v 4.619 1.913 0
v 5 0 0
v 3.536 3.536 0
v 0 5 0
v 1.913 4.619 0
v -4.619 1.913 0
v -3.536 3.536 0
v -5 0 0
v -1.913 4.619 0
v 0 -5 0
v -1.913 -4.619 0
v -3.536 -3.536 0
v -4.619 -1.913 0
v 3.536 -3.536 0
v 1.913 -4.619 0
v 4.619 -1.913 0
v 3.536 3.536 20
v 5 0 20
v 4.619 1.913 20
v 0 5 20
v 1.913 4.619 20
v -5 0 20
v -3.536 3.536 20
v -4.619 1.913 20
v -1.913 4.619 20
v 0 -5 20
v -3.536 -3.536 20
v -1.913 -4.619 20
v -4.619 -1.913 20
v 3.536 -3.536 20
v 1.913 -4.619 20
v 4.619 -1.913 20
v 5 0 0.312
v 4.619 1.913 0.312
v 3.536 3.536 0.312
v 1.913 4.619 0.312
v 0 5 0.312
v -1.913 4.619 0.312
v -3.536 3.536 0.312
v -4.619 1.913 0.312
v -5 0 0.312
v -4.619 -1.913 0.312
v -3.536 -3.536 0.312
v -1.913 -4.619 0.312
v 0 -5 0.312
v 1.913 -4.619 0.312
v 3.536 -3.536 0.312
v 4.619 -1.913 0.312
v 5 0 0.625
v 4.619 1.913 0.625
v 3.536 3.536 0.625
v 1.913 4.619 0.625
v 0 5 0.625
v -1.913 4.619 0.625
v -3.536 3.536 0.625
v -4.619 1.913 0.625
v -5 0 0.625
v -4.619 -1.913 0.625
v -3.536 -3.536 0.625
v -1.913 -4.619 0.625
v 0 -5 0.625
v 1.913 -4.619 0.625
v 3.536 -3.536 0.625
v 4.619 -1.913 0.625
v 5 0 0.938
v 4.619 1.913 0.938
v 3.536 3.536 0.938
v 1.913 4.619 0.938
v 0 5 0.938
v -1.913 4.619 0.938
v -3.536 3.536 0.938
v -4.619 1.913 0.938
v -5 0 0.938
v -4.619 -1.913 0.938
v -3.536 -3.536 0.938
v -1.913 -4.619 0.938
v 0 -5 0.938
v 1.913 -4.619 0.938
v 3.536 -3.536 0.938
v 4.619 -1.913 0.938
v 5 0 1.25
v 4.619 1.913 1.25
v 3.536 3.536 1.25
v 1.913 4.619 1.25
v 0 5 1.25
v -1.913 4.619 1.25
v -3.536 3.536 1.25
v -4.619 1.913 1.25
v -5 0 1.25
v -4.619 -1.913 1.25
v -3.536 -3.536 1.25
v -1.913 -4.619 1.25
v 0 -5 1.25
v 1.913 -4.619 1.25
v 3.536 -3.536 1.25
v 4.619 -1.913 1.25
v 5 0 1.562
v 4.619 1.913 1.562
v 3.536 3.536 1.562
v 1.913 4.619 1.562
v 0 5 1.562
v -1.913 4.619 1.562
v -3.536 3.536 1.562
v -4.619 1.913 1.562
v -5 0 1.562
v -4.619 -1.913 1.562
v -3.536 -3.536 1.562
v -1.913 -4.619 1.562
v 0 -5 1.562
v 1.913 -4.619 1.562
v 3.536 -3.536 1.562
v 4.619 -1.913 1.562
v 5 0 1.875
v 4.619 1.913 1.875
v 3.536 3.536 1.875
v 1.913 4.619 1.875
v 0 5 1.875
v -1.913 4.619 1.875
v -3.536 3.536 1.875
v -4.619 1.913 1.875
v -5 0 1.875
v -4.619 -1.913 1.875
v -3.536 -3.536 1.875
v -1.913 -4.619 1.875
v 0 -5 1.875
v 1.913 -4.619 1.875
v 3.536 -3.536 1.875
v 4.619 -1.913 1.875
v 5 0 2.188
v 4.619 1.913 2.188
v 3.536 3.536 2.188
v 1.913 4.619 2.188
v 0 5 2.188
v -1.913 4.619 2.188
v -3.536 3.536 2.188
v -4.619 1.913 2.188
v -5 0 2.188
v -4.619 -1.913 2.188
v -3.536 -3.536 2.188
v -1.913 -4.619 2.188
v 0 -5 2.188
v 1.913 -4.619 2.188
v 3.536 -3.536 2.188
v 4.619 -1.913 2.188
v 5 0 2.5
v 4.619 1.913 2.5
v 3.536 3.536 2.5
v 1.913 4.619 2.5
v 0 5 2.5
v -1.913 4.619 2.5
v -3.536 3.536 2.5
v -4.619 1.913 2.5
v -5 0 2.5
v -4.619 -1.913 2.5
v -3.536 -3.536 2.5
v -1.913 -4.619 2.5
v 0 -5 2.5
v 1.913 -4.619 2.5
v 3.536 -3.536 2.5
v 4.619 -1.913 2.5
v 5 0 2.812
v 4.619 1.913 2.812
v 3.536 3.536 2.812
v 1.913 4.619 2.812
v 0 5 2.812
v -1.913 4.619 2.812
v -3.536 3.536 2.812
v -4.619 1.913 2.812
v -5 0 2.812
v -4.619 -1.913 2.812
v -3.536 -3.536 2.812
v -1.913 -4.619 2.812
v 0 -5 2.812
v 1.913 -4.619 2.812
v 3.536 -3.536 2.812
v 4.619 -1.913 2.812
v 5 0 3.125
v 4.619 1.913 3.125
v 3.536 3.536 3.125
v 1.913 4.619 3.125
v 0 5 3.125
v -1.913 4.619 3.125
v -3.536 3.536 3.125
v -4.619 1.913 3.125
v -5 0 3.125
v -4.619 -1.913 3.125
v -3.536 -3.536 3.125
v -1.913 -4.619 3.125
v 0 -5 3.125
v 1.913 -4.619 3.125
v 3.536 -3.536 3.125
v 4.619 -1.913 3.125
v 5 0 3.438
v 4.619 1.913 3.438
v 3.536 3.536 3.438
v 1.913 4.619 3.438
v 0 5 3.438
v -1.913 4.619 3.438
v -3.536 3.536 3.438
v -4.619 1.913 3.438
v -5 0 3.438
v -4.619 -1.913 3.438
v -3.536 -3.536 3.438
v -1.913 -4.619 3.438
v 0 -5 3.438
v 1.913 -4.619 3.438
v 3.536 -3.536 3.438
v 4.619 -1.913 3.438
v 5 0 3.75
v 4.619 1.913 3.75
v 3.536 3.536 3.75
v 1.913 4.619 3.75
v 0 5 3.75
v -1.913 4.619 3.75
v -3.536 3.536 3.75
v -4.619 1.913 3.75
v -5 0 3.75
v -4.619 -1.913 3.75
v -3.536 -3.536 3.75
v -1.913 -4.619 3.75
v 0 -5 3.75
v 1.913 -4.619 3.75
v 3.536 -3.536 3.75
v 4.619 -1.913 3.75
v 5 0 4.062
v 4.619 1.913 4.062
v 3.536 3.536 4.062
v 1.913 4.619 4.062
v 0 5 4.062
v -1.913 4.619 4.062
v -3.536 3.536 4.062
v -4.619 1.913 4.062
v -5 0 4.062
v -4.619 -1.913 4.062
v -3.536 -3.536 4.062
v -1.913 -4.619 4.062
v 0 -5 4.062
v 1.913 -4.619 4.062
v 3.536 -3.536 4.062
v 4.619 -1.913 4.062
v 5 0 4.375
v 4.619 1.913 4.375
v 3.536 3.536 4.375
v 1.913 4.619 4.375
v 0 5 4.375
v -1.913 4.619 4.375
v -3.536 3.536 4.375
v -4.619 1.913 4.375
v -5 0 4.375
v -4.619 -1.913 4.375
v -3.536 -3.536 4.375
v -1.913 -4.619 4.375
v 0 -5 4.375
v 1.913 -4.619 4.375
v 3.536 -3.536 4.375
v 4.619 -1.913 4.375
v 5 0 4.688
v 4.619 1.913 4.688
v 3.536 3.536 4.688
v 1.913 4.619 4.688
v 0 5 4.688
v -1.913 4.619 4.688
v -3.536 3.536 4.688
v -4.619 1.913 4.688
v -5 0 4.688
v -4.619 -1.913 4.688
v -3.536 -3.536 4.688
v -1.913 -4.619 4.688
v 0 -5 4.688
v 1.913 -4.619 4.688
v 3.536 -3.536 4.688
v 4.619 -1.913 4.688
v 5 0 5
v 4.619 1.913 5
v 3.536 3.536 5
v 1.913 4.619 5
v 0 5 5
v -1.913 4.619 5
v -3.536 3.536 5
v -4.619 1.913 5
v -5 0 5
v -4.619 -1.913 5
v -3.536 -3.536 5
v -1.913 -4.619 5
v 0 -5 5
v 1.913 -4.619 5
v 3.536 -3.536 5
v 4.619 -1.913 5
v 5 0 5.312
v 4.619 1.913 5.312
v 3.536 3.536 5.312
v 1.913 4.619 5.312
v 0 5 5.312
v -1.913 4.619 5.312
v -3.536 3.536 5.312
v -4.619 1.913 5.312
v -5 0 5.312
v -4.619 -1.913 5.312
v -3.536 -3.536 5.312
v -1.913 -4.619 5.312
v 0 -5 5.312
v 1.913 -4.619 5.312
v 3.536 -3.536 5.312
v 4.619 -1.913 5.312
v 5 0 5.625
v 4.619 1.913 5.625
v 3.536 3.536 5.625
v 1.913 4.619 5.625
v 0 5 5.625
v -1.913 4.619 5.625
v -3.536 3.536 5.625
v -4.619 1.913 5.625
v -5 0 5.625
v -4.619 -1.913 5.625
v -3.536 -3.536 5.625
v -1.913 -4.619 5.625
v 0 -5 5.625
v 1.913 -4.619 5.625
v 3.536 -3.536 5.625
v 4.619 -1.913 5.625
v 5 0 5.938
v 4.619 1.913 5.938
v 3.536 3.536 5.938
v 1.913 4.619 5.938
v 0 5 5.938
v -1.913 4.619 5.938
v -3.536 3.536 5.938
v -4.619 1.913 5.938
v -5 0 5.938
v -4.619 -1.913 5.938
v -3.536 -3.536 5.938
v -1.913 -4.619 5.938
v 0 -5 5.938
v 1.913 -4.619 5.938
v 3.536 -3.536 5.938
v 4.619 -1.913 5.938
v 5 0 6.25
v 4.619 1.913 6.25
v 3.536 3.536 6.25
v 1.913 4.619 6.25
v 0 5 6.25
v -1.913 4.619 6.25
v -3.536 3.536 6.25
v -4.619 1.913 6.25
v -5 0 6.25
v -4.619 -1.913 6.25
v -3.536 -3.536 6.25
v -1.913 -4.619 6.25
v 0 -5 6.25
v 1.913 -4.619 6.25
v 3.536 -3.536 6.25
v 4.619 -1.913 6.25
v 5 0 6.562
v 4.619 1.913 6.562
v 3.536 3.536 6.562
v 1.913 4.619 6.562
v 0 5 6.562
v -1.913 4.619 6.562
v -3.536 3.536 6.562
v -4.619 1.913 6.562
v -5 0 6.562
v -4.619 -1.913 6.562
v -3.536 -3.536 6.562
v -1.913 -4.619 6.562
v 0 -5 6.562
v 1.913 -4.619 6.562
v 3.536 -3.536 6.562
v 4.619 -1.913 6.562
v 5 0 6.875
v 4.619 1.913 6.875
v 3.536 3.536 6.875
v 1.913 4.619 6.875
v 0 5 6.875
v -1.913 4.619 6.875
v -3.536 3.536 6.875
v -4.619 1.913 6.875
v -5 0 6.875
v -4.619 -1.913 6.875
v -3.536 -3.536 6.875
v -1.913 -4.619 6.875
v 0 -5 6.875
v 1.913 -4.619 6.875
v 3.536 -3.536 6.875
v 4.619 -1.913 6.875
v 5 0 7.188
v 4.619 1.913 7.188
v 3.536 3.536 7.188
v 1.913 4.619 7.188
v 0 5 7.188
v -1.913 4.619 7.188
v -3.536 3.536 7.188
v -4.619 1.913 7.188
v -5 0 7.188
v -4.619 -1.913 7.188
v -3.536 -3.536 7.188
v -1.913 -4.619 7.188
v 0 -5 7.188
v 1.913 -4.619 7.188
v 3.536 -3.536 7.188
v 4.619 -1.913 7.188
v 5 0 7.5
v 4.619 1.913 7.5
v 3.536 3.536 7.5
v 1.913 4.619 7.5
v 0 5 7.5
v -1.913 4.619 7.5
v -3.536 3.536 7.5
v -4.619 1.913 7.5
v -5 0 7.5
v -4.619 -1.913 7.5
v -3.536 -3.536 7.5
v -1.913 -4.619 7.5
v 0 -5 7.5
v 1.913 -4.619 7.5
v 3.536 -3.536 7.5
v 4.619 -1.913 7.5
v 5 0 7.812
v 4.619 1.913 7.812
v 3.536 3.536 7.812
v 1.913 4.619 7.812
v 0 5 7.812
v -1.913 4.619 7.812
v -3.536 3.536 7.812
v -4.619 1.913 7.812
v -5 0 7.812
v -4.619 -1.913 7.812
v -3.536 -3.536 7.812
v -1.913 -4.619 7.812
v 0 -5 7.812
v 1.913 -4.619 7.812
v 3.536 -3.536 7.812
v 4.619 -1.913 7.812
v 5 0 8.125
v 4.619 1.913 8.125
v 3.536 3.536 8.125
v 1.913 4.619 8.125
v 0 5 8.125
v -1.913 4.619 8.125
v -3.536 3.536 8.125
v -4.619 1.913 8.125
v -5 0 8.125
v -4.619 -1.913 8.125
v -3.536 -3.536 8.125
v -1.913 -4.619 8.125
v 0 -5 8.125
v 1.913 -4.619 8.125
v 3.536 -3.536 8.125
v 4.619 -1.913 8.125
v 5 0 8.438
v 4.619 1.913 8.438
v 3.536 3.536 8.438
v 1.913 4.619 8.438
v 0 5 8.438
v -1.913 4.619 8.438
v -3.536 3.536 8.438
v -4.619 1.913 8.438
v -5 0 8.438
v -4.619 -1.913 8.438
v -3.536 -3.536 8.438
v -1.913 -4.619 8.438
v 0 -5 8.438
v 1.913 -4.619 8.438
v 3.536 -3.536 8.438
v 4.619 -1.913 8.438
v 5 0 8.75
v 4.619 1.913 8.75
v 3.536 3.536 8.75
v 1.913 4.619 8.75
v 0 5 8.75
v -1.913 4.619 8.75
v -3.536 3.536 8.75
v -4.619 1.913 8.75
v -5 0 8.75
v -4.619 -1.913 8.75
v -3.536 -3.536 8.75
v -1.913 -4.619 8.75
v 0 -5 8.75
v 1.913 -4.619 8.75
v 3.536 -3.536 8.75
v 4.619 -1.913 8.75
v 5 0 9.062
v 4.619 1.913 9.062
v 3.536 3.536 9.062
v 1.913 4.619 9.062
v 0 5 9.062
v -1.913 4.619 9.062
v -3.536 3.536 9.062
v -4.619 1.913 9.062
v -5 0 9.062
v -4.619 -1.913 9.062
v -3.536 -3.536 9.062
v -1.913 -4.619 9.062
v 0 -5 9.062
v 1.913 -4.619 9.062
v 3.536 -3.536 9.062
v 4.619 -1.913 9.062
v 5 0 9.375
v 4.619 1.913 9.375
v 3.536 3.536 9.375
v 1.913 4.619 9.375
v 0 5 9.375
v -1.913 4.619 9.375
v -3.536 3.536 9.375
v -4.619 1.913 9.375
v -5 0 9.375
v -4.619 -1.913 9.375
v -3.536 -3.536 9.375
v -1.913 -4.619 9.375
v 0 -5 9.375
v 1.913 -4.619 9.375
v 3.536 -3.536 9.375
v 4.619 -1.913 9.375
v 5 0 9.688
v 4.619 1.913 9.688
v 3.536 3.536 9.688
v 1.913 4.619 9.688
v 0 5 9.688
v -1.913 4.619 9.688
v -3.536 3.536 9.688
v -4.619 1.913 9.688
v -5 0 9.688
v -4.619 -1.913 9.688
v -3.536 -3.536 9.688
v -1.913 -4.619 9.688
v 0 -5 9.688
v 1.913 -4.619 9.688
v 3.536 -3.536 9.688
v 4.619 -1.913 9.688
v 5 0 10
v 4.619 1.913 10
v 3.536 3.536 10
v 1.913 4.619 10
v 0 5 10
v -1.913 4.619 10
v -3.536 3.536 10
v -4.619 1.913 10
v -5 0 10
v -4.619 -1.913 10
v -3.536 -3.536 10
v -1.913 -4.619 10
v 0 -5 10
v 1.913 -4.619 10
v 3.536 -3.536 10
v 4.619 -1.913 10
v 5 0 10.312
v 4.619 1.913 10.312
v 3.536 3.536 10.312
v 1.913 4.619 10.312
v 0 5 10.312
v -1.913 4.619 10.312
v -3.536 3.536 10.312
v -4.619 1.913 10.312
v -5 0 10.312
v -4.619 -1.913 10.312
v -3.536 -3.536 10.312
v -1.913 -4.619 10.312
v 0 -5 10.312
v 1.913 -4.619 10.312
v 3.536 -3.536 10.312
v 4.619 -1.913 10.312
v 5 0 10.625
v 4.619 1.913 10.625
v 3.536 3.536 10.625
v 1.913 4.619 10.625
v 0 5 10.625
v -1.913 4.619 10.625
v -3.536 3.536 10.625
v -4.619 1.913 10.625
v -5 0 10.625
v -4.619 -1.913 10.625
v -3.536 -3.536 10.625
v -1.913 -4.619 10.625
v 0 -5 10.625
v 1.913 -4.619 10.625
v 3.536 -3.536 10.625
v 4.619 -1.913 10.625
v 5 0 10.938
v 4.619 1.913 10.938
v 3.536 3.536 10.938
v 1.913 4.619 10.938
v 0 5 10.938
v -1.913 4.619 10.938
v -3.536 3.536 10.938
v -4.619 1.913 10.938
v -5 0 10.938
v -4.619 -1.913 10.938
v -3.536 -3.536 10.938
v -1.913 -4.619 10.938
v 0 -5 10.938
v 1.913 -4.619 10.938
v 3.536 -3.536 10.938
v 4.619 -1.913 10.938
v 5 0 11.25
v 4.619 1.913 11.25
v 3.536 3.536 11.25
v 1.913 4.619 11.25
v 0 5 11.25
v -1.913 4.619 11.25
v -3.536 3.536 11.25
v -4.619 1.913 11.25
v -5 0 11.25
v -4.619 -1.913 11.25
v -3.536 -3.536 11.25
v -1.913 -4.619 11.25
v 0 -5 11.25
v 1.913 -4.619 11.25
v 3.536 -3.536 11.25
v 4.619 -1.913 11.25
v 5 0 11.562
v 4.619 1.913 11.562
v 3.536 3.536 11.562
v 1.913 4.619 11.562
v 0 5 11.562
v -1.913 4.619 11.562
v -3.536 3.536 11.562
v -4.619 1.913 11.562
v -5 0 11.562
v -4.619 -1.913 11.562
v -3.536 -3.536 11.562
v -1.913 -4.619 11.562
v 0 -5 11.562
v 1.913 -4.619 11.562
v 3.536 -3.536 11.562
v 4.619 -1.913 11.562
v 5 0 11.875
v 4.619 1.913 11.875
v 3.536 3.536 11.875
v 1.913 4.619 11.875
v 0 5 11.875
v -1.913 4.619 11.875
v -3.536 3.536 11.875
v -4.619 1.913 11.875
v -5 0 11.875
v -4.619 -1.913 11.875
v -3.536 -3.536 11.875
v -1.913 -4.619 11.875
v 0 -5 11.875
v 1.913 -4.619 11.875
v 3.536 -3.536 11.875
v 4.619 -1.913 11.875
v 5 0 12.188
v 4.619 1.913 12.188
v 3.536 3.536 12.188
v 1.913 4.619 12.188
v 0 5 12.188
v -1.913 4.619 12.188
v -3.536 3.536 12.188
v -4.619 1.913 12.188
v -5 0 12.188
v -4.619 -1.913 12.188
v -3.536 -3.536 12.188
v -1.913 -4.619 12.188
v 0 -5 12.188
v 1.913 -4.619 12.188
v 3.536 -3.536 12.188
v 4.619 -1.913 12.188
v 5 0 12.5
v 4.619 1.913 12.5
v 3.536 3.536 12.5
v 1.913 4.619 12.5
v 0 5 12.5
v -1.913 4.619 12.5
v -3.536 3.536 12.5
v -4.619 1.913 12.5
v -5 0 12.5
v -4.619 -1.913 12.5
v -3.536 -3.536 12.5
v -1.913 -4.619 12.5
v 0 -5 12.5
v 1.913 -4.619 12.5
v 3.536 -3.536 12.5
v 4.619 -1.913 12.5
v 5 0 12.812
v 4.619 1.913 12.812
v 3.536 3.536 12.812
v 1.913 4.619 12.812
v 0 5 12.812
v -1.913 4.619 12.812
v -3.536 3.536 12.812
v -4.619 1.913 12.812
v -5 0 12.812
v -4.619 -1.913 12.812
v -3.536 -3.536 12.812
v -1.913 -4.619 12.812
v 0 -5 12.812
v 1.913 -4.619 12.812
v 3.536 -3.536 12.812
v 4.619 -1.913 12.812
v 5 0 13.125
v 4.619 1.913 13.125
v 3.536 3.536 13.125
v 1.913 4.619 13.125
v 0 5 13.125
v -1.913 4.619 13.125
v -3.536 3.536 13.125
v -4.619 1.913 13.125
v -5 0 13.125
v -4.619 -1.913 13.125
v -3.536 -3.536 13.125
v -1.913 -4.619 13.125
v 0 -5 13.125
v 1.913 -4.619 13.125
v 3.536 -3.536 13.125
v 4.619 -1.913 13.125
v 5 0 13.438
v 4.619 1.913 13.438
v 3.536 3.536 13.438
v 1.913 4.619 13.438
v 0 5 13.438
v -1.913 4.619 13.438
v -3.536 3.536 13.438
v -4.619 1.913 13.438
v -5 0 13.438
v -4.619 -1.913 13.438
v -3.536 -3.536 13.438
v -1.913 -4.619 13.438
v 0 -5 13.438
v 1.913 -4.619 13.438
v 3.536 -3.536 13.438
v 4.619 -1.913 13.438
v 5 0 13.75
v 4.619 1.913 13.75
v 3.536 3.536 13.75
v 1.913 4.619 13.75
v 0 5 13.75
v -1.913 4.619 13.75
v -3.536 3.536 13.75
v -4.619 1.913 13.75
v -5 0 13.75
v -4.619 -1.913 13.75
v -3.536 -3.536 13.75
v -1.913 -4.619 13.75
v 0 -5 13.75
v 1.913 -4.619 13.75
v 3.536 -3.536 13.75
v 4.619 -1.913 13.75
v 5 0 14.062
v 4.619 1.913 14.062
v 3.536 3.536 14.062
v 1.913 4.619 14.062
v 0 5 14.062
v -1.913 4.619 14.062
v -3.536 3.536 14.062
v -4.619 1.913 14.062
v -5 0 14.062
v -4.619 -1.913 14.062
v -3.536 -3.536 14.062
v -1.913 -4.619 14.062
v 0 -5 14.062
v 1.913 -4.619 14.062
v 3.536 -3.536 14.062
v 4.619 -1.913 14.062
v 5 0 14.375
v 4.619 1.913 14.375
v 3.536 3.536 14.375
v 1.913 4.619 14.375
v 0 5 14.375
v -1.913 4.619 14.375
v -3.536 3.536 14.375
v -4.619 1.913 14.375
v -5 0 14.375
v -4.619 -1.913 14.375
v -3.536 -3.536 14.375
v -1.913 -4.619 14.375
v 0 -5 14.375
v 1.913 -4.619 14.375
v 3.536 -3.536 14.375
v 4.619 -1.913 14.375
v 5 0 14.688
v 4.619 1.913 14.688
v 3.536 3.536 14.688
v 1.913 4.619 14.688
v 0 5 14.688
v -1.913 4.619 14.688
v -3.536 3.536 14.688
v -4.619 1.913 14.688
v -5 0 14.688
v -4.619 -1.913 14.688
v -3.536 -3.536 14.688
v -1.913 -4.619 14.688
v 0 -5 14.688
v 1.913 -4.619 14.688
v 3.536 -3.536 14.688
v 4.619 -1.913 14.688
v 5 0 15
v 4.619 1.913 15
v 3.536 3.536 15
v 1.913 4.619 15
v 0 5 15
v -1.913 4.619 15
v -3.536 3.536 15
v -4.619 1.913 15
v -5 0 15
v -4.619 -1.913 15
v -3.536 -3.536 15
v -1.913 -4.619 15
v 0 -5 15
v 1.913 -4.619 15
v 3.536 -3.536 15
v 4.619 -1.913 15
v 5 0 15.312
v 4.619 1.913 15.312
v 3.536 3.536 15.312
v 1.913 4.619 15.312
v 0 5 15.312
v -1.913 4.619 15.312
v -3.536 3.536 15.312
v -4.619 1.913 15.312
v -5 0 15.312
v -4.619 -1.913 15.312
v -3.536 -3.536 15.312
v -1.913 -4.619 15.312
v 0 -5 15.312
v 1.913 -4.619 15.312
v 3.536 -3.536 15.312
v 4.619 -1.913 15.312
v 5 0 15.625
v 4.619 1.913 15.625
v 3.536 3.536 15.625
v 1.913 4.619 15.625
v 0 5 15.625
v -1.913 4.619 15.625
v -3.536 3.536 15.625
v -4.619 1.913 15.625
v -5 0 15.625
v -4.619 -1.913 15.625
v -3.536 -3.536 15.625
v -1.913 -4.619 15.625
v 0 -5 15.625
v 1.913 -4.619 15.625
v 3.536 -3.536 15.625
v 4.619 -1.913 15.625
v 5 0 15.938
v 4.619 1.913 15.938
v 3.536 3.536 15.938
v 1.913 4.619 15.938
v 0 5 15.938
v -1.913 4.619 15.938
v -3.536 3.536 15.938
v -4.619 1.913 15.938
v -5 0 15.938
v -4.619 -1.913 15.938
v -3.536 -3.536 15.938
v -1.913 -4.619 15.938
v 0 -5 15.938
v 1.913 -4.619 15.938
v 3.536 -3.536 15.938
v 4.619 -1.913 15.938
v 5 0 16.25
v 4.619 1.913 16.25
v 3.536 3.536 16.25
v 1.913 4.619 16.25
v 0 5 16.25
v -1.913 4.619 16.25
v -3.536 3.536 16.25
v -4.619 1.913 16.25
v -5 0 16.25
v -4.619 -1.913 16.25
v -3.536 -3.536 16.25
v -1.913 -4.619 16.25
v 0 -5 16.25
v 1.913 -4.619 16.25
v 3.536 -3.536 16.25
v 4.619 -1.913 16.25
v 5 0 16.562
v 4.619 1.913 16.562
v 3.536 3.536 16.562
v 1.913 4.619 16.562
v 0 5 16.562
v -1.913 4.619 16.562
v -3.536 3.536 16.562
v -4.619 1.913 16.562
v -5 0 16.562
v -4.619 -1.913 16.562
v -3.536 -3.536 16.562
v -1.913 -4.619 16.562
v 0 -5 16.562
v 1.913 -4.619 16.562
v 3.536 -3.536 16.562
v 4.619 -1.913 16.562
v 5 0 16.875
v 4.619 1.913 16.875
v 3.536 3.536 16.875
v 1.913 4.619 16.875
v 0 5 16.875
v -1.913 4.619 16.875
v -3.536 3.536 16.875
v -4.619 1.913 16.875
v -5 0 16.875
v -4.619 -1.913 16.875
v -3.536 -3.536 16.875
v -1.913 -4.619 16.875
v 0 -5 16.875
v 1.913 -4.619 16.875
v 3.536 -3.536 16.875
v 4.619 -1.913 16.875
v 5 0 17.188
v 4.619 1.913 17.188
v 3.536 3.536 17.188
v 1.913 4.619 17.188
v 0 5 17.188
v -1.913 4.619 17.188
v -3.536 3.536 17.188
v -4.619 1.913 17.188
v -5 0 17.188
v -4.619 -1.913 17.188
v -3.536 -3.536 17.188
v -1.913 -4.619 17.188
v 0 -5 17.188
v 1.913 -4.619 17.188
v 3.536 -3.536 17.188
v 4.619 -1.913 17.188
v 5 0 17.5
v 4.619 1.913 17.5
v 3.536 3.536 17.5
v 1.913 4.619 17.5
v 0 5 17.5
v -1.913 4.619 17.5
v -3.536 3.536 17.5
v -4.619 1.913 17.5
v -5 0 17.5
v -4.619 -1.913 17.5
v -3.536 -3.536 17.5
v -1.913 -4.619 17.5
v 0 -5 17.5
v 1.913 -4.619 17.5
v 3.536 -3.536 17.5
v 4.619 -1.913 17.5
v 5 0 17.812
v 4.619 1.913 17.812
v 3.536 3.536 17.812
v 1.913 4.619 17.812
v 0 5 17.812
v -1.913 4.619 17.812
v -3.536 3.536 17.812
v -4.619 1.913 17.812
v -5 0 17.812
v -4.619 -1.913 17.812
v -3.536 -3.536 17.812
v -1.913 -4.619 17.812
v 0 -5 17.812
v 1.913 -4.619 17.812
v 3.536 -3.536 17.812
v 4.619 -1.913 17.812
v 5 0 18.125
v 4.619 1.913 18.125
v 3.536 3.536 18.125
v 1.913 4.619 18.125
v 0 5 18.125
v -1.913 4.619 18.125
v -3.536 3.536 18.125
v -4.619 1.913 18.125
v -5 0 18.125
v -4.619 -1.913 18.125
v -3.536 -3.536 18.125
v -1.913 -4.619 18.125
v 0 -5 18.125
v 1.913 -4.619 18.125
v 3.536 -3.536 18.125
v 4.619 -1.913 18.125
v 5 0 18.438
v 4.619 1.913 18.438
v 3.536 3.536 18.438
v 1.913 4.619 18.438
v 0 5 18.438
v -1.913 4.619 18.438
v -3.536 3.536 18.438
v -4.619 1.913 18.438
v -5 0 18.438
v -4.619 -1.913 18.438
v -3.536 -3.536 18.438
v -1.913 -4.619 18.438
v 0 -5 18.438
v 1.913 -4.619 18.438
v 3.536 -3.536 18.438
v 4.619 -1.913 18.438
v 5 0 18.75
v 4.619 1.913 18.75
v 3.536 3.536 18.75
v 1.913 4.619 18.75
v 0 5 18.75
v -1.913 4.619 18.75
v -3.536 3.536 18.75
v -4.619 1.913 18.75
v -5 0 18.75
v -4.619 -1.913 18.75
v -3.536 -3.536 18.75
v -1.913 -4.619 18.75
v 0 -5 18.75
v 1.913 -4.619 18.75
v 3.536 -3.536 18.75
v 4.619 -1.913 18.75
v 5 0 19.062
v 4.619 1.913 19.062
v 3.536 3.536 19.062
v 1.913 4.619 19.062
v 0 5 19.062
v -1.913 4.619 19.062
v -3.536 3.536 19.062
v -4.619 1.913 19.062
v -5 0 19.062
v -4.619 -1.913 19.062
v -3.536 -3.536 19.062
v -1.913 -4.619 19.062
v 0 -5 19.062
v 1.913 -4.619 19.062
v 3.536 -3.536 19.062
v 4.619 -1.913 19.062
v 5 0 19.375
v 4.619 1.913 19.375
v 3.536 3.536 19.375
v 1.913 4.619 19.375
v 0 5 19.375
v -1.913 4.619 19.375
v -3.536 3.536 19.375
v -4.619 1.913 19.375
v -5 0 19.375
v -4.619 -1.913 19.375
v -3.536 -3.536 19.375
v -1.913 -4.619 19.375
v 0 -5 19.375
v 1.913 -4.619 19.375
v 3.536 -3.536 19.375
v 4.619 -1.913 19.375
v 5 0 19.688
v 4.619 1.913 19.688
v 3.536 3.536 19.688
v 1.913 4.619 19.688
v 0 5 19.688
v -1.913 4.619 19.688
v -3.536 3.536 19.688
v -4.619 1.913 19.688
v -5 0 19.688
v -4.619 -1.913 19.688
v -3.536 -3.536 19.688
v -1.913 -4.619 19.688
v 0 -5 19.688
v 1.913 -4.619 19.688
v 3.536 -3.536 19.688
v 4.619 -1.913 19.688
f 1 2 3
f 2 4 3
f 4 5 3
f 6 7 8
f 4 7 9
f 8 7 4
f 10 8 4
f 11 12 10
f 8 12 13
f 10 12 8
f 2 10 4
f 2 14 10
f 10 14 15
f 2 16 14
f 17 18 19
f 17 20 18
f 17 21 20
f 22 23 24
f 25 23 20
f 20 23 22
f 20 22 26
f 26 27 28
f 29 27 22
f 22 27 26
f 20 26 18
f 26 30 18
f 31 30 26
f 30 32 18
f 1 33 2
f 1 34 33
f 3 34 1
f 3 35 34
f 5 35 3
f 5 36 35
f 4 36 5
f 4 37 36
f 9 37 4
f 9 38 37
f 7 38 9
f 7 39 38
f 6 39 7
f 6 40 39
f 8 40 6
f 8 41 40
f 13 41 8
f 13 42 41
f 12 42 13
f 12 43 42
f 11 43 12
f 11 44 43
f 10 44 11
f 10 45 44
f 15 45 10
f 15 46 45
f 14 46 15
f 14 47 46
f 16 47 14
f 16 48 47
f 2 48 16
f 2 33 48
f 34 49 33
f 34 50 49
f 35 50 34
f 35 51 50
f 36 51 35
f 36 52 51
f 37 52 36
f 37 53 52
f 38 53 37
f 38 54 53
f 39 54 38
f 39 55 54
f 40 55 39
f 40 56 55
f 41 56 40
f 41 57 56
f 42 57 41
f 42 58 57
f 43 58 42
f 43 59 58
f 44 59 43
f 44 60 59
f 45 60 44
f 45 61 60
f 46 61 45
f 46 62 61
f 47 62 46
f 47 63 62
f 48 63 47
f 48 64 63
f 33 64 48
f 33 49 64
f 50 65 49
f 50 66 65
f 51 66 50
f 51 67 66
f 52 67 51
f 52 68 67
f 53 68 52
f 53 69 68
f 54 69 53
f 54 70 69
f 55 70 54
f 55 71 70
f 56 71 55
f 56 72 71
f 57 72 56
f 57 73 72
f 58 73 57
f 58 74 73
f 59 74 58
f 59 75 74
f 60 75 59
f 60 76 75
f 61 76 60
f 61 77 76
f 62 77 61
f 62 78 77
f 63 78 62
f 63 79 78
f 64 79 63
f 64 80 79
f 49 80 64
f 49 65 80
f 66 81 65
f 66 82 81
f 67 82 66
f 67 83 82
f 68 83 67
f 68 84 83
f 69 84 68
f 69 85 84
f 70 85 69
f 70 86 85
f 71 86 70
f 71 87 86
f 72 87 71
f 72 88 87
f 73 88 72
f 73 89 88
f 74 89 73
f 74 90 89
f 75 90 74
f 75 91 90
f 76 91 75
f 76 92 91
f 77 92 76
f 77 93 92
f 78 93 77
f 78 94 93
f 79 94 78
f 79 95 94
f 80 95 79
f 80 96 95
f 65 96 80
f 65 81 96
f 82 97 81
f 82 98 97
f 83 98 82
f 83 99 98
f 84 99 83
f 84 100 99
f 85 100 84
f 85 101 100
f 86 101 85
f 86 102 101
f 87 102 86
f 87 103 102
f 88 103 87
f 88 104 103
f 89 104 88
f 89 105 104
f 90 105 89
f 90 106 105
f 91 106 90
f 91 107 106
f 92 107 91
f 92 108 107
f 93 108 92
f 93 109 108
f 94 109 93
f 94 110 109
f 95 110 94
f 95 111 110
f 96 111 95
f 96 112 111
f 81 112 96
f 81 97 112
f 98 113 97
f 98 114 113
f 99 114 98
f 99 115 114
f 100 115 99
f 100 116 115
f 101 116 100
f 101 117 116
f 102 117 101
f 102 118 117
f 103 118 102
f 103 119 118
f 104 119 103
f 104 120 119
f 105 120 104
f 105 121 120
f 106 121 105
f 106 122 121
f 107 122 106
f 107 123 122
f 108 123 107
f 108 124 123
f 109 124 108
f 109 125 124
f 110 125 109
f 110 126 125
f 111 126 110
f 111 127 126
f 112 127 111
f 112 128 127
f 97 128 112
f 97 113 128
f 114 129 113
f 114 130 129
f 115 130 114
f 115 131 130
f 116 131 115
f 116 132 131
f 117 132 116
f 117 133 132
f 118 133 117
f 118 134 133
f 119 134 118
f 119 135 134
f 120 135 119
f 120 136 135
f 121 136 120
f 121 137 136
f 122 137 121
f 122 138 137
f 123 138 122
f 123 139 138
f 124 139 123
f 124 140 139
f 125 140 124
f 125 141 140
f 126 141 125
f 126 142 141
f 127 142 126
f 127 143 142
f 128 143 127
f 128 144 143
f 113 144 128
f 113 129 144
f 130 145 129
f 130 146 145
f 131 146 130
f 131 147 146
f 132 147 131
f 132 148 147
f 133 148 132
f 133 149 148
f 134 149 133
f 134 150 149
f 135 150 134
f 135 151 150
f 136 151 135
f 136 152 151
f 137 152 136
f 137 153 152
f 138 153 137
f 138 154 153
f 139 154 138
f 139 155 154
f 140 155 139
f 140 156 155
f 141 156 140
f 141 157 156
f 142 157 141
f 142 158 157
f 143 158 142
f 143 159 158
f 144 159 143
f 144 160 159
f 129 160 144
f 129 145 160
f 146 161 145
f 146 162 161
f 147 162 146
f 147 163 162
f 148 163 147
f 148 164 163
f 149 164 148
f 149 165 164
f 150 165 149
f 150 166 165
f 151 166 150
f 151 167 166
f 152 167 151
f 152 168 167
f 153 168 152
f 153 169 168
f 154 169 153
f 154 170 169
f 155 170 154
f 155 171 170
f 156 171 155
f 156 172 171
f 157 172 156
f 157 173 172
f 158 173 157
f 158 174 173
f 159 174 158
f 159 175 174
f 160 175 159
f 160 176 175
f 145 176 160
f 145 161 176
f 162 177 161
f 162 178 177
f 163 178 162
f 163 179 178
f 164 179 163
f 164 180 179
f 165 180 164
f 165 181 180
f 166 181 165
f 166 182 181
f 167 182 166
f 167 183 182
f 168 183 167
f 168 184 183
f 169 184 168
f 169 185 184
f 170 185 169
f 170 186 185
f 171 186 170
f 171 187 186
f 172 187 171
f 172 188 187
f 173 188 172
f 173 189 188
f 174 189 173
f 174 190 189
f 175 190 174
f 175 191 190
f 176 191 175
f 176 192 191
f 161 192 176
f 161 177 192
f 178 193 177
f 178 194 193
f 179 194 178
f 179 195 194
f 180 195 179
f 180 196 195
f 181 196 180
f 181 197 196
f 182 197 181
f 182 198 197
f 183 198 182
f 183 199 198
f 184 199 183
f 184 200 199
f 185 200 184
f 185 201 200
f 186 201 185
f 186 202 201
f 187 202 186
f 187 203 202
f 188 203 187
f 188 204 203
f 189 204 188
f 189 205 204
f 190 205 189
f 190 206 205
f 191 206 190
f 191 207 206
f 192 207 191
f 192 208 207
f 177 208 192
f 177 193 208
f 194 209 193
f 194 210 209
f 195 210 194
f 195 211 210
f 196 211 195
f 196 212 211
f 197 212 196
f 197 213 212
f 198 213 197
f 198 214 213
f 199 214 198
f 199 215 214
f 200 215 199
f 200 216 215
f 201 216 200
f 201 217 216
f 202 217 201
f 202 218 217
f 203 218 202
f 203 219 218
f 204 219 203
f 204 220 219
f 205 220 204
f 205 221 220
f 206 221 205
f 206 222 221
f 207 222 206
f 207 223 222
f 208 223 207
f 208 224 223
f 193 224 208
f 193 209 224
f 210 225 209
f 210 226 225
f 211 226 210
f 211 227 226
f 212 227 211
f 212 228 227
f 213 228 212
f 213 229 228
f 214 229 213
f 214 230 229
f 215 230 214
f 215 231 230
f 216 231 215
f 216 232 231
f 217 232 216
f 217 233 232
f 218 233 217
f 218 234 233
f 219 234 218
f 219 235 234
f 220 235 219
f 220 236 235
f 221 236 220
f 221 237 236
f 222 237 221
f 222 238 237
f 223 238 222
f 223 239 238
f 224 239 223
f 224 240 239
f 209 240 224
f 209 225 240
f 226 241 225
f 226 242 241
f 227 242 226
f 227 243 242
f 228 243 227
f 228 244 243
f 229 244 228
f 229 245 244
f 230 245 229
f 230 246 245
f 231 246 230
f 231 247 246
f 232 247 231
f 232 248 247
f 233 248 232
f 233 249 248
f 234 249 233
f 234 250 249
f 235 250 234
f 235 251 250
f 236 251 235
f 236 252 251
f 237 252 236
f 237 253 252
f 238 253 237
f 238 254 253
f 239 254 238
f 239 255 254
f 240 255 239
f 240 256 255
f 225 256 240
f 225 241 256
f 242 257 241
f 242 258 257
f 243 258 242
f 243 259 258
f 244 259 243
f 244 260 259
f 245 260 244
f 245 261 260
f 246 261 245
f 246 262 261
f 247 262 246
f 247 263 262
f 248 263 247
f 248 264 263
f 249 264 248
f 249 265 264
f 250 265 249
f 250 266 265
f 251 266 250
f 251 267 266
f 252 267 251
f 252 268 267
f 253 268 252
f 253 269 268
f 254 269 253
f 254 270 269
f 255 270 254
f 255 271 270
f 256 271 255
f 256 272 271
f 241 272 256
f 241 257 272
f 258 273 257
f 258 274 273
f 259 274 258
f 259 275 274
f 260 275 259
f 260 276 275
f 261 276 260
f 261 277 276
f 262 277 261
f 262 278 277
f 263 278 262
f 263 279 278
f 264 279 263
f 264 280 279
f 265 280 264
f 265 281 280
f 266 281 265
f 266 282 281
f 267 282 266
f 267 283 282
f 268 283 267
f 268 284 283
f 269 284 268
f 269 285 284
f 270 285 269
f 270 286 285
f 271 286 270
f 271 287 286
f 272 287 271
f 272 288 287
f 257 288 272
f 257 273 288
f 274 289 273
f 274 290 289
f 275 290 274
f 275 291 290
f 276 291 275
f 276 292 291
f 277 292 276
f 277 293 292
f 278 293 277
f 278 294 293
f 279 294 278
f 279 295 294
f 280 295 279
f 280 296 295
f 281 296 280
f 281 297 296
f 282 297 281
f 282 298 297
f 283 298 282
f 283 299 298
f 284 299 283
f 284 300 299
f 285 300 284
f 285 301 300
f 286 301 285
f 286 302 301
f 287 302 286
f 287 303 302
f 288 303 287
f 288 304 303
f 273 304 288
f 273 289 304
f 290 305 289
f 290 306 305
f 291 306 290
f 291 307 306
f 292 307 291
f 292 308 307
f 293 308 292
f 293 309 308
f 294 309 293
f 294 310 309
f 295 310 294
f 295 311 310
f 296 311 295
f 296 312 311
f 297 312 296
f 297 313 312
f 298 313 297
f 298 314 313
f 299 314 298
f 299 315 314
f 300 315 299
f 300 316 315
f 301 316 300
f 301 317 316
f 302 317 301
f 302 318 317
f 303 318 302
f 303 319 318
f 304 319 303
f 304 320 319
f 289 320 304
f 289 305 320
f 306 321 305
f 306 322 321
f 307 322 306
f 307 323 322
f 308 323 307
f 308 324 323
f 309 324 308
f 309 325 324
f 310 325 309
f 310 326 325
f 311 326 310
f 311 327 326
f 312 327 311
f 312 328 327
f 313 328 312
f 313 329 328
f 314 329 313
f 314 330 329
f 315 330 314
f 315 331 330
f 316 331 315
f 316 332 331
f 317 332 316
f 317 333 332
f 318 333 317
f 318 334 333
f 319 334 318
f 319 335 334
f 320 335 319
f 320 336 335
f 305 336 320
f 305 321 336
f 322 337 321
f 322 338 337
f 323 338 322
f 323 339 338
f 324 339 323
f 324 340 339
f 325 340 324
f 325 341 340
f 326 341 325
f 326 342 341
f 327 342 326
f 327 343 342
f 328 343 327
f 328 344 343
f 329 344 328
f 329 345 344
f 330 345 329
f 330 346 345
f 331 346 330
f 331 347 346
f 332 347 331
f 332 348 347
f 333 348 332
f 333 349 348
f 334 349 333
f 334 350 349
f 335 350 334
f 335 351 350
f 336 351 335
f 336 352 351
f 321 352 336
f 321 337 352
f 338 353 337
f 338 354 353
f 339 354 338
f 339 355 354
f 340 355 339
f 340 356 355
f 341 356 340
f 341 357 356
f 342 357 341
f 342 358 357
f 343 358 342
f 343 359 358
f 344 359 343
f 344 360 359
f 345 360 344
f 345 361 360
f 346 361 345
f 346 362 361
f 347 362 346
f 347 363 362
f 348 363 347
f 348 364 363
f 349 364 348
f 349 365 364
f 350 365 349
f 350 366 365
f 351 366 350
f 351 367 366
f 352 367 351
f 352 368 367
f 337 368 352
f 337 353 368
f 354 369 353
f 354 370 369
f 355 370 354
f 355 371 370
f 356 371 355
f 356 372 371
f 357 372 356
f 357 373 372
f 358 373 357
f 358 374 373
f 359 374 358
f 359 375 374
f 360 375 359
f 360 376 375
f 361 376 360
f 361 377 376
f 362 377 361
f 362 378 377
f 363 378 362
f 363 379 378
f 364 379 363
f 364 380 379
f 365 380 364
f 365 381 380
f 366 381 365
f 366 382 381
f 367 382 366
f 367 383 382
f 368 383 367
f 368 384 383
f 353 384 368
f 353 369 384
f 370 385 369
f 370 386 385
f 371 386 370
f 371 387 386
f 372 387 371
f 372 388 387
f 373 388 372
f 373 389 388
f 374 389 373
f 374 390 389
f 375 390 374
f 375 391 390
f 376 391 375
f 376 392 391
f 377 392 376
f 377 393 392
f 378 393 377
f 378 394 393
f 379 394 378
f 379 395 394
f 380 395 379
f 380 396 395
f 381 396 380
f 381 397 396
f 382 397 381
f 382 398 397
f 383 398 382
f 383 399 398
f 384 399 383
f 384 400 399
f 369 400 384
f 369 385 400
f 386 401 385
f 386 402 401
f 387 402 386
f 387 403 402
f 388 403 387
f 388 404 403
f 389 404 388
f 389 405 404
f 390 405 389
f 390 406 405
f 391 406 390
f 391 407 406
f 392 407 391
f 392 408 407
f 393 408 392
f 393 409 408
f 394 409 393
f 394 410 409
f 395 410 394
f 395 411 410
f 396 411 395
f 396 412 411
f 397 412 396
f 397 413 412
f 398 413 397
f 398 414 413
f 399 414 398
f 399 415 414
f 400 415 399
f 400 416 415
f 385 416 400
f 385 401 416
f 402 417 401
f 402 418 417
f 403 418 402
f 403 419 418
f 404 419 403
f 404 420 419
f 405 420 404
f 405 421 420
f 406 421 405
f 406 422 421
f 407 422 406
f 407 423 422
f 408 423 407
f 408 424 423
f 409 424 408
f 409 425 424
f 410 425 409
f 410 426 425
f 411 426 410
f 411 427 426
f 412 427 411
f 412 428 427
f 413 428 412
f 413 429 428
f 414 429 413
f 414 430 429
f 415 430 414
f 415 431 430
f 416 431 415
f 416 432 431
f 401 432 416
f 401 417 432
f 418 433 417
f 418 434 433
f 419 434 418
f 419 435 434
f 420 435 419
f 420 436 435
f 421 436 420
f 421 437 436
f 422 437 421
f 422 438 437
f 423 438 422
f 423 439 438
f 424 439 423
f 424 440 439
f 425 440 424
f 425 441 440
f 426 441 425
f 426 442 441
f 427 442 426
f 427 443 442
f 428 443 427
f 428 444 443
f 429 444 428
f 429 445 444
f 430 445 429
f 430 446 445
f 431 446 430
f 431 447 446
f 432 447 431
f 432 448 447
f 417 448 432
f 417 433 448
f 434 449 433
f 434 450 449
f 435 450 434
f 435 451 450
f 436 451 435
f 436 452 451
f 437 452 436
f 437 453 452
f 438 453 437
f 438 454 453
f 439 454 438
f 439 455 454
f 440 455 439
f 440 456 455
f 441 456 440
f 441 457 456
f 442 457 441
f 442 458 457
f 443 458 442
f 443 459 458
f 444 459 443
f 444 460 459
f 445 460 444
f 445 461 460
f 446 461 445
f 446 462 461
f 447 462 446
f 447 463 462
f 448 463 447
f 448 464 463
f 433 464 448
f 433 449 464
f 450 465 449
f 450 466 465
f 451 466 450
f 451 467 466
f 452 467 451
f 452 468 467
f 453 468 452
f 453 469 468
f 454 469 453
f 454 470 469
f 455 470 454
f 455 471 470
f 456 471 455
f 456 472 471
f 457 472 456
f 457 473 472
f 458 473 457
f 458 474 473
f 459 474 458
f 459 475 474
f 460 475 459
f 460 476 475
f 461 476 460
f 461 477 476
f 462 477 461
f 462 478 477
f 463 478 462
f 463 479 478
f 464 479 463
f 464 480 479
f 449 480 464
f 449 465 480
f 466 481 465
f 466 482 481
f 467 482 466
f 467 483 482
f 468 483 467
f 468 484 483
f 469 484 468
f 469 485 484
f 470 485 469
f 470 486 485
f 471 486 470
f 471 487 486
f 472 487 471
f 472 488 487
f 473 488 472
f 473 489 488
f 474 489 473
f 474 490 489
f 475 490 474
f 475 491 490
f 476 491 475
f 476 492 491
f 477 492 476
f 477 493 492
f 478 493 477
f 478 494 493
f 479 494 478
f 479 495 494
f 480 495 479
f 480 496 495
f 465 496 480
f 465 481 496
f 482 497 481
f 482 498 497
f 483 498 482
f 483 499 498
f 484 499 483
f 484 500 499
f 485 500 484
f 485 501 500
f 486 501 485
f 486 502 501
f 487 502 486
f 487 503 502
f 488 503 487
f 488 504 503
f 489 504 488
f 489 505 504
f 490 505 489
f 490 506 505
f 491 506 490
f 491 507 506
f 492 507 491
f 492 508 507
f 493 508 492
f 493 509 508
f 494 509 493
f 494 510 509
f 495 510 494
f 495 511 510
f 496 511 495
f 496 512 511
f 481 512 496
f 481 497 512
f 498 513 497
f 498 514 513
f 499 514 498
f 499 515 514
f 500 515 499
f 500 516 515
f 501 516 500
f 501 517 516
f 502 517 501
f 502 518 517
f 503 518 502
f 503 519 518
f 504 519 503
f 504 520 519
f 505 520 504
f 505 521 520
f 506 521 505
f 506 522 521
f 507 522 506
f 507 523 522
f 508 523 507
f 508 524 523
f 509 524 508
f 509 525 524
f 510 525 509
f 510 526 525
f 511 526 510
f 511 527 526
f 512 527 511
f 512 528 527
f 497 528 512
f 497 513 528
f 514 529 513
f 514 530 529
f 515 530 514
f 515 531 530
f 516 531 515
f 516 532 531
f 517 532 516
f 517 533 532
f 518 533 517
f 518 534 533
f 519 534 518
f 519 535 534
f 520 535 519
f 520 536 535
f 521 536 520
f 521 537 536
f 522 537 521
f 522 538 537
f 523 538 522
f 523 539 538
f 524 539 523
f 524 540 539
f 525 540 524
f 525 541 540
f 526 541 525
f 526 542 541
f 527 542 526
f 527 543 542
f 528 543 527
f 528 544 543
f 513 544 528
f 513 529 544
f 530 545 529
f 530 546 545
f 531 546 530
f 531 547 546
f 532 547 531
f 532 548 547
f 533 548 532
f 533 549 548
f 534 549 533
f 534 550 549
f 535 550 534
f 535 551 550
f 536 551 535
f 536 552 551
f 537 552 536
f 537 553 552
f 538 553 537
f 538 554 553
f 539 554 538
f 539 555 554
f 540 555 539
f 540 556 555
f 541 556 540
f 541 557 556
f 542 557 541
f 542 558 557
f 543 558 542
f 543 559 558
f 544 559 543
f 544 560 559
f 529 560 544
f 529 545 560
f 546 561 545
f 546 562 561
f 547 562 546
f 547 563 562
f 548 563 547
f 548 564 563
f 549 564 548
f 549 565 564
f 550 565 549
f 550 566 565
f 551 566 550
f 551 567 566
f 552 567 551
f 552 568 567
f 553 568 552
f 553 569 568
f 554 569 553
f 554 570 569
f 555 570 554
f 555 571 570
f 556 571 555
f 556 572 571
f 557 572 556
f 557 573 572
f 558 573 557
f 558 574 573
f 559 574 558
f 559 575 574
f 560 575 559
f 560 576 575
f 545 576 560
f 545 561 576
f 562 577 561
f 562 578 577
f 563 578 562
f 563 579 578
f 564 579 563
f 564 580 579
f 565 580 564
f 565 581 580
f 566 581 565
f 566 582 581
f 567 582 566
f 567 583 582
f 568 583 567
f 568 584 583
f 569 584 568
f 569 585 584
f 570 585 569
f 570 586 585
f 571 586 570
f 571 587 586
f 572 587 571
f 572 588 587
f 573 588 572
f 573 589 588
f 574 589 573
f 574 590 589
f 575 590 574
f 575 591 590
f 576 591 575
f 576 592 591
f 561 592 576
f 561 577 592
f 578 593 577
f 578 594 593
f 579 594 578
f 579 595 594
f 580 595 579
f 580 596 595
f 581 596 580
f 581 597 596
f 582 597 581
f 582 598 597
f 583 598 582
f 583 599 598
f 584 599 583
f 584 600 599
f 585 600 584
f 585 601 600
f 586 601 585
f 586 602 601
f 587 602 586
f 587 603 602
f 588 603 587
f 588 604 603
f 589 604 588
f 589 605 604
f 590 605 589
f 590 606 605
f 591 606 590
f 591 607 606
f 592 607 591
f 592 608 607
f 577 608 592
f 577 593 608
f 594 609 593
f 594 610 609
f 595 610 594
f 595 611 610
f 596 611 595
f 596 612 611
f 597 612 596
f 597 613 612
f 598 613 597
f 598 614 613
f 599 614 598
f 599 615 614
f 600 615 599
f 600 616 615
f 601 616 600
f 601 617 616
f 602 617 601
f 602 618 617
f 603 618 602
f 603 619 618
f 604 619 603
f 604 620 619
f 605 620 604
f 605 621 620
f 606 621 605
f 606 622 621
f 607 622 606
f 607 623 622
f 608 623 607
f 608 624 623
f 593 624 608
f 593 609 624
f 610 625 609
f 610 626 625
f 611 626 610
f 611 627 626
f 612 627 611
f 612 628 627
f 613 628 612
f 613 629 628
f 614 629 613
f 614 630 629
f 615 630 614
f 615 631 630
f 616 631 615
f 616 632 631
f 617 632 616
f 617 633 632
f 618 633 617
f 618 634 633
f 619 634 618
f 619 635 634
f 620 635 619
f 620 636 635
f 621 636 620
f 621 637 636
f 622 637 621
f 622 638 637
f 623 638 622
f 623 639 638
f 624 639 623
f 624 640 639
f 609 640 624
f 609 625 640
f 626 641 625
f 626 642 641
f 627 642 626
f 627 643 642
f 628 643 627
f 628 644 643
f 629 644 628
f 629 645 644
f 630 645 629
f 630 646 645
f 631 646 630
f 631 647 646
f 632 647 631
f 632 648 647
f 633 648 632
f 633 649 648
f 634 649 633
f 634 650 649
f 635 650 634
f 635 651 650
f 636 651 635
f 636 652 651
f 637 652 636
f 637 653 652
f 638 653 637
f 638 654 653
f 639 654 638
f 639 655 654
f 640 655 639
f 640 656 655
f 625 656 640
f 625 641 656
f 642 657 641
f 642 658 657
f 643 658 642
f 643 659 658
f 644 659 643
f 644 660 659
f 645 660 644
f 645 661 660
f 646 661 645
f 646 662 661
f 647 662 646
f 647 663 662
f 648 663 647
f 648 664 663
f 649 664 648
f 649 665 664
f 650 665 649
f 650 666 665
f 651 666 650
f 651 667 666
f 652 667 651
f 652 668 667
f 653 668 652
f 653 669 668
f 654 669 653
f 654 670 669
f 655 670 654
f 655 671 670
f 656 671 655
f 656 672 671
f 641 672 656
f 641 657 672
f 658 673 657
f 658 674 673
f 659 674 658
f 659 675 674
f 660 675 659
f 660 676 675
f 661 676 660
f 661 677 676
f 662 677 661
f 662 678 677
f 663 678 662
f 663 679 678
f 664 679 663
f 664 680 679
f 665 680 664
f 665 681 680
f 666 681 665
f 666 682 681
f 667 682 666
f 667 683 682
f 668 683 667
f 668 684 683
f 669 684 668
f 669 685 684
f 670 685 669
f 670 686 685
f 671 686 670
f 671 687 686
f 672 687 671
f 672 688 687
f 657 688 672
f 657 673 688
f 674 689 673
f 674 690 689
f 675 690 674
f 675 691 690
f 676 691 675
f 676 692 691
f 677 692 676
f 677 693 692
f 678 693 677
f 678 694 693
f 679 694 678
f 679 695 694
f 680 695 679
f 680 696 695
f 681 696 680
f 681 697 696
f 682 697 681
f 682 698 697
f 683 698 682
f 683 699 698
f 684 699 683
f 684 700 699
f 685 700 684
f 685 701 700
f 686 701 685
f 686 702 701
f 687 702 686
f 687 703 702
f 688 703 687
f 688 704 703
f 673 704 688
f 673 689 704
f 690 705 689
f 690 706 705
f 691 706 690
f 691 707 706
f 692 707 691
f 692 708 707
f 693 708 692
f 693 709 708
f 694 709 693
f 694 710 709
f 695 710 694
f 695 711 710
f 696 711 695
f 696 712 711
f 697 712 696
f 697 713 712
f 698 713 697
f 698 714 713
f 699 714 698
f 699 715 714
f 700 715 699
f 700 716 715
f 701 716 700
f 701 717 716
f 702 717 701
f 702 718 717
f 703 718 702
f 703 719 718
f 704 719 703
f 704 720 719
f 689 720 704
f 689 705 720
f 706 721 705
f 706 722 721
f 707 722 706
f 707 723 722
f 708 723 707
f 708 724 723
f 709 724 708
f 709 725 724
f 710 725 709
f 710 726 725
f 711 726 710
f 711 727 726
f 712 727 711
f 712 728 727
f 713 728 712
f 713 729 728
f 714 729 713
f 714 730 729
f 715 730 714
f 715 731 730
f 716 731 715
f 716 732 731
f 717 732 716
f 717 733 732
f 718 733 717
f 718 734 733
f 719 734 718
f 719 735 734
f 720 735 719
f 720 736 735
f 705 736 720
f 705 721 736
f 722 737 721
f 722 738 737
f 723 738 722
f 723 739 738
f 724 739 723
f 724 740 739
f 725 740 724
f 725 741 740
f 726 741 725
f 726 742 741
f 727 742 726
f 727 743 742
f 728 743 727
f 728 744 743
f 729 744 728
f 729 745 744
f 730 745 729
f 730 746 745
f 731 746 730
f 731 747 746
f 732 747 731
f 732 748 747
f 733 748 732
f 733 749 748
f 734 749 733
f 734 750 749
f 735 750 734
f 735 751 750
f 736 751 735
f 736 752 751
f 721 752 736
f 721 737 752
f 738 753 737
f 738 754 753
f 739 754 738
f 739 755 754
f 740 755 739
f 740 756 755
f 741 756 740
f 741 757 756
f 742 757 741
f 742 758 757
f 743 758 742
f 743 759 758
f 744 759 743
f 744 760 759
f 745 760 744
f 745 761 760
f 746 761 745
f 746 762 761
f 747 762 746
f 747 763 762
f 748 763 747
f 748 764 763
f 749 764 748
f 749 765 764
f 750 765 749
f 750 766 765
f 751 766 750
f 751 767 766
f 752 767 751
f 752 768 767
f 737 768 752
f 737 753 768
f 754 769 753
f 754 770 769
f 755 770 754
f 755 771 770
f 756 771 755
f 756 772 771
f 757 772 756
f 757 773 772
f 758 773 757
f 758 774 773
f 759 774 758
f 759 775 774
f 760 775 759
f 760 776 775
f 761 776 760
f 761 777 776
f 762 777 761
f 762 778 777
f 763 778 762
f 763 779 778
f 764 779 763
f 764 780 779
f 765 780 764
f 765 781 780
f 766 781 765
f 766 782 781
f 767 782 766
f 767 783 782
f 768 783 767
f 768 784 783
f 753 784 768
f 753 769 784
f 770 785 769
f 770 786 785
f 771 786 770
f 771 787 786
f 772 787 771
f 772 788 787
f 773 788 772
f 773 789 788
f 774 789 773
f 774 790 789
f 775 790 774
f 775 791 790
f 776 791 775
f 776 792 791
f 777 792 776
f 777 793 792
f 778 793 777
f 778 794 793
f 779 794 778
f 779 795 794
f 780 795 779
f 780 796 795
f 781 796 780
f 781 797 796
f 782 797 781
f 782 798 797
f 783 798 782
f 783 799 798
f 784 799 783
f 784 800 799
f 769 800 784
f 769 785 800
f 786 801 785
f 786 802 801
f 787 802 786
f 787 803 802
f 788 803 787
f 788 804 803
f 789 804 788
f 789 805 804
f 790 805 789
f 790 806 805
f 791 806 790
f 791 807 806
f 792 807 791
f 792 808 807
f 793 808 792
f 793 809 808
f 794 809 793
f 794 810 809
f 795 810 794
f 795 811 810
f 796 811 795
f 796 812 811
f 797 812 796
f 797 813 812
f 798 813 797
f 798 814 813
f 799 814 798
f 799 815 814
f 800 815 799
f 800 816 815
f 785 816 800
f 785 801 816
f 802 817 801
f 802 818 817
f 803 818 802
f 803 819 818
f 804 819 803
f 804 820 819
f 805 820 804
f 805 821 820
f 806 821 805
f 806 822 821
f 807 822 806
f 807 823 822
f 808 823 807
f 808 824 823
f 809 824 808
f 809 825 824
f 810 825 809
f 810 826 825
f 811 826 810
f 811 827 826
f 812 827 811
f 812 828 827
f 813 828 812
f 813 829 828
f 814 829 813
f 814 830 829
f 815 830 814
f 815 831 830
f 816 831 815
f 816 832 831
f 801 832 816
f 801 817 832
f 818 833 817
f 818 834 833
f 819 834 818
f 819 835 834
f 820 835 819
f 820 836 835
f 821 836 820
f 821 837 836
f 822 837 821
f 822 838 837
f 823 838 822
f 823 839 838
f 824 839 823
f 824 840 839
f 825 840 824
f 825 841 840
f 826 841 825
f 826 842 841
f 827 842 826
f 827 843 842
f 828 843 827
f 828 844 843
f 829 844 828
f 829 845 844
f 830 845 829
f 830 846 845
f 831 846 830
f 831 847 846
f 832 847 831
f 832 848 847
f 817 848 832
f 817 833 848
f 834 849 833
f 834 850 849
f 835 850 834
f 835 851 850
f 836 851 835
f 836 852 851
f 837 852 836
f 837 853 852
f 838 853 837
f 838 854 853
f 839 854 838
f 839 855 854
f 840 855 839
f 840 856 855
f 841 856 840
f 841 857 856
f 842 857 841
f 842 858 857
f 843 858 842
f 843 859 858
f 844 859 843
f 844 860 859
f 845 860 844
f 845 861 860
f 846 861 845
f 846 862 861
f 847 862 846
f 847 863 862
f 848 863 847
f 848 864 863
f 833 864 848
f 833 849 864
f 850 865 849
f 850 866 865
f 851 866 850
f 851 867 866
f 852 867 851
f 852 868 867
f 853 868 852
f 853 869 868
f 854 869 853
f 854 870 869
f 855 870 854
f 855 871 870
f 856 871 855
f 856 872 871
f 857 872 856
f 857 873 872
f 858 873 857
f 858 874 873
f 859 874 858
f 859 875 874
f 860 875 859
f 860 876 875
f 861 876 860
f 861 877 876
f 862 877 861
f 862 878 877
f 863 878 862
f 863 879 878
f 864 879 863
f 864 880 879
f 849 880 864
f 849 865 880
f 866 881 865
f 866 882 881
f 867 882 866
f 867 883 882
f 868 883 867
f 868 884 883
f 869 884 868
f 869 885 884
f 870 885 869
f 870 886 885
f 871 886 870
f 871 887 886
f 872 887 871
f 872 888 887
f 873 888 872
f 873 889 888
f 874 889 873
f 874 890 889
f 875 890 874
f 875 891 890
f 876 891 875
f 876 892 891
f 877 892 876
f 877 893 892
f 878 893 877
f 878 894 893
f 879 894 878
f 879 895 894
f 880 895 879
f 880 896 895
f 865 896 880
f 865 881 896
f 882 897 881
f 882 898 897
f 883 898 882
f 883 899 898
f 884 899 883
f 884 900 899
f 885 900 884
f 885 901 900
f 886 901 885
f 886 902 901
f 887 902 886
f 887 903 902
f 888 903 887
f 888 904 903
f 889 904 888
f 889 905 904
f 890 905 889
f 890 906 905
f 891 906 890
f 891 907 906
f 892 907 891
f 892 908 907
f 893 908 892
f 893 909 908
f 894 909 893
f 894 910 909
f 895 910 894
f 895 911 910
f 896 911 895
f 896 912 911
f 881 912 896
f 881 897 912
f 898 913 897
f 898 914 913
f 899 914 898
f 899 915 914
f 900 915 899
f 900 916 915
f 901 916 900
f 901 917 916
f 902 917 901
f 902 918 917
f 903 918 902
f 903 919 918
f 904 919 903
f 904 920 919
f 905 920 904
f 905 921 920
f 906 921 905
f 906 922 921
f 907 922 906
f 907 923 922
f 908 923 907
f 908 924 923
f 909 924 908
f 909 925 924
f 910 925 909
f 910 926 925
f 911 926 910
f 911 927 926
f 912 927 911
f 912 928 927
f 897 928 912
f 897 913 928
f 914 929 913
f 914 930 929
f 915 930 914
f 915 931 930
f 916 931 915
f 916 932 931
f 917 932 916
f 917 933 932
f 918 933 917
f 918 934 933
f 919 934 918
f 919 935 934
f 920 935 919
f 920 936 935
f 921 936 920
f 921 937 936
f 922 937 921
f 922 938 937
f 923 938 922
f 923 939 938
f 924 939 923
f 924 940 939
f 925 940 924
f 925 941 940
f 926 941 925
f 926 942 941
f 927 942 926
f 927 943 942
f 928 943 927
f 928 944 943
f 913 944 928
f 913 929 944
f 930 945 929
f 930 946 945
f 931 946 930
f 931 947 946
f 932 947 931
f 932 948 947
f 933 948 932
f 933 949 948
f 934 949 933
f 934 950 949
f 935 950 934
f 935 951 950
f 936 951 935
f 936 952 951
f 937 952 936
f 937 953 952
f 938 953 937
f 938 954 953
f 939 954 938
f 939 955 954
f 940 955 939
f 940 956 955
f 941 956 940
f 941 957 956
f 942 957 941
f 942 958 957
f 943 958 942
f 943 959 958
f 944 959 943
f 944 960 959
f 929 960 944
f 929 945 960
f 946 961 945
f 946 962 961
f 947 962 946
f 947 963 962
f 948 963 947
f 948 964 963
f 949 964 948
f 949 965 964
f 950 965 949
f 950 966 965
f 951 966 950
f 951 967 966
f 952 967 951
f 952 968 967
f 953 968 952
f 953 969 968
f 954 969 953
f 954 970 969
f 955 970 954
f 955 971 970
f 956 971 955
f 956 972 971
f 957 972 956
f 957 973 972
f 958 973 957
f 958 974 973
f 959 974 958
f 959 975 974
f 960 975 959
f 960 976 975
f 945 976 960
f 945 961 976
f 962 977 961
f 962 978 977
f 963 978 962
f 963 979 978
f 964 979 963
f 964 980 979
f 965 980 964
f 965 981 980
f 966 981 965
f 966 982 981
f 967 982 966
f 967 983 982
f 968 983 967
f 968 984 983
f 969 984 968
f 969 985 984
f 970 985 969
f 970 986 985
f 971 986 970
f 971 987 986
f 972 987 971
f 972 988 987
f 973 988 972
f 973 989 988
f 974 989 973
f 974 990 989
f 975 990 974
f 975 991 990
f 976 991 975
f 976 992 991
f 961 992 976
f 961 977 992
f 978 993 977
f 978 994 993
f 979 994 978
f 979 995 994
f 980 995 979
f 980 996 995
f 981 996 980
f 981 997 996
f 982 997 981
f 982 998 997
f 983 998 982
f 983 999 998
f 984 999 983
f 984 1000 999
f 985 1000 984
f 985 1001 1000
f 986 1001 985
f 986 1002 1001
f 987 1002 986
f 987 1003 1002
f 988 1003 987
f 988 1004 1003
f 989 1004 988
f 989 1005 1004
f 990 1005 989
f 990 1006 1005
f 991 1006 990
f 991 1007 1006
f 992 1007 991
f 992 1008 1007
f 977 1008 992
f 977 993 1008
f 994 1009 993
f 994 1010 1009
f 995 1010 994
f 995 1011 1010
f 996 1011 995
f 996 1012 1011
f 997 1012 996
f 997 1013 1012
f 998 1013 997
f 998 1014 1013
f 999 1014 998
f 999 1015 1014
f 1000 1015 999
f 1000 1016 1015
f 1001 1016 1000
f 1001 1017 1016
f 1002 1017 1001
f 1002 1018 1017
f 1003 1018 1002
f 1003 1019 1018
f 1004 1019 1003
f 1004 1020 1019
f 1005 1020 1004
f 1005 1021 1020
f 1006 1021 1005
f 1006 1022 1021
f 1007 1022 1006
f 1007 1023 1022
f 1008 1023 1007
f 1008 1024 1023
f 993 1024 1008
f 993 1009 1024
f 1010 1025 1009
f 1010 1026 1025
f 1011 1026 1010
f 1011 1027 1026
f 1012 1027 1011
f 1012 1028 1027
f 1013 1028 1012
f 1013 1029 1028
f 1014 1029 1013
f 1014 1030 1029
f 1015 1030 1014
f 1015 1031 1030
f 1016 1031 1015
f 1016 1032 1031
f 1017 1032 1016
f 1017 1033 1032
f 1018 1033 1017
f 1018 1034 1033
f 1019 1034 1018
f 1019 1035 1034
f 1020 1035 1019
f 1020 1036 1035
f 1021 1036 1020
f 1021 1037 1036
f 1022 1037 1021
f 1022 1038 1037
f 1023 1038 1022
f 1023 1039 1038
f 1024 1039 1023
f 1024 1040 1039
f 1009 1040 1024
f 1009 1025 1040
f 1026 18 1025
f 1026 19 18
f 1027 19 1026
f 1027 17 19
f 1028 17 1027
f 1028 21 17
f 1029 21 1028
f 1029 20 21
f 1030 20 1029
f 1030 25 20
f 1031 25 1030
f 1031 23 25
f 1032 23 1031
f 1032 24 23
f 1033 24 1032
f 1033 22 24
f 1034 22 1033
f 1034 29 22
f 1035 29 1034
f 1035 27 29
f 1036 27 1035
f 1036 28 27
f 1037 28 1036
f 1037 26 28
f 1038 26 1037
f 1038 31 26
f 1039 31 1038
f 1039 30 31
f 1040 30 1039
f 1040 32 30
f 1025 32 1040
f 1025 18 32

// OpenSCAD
module tube(r, h, segments) {
  linear_extrude(height = h, convexity = 10, slices = segments)
    circle(r = r);
}

tube(r = 5, h = 20, segments = 64);
